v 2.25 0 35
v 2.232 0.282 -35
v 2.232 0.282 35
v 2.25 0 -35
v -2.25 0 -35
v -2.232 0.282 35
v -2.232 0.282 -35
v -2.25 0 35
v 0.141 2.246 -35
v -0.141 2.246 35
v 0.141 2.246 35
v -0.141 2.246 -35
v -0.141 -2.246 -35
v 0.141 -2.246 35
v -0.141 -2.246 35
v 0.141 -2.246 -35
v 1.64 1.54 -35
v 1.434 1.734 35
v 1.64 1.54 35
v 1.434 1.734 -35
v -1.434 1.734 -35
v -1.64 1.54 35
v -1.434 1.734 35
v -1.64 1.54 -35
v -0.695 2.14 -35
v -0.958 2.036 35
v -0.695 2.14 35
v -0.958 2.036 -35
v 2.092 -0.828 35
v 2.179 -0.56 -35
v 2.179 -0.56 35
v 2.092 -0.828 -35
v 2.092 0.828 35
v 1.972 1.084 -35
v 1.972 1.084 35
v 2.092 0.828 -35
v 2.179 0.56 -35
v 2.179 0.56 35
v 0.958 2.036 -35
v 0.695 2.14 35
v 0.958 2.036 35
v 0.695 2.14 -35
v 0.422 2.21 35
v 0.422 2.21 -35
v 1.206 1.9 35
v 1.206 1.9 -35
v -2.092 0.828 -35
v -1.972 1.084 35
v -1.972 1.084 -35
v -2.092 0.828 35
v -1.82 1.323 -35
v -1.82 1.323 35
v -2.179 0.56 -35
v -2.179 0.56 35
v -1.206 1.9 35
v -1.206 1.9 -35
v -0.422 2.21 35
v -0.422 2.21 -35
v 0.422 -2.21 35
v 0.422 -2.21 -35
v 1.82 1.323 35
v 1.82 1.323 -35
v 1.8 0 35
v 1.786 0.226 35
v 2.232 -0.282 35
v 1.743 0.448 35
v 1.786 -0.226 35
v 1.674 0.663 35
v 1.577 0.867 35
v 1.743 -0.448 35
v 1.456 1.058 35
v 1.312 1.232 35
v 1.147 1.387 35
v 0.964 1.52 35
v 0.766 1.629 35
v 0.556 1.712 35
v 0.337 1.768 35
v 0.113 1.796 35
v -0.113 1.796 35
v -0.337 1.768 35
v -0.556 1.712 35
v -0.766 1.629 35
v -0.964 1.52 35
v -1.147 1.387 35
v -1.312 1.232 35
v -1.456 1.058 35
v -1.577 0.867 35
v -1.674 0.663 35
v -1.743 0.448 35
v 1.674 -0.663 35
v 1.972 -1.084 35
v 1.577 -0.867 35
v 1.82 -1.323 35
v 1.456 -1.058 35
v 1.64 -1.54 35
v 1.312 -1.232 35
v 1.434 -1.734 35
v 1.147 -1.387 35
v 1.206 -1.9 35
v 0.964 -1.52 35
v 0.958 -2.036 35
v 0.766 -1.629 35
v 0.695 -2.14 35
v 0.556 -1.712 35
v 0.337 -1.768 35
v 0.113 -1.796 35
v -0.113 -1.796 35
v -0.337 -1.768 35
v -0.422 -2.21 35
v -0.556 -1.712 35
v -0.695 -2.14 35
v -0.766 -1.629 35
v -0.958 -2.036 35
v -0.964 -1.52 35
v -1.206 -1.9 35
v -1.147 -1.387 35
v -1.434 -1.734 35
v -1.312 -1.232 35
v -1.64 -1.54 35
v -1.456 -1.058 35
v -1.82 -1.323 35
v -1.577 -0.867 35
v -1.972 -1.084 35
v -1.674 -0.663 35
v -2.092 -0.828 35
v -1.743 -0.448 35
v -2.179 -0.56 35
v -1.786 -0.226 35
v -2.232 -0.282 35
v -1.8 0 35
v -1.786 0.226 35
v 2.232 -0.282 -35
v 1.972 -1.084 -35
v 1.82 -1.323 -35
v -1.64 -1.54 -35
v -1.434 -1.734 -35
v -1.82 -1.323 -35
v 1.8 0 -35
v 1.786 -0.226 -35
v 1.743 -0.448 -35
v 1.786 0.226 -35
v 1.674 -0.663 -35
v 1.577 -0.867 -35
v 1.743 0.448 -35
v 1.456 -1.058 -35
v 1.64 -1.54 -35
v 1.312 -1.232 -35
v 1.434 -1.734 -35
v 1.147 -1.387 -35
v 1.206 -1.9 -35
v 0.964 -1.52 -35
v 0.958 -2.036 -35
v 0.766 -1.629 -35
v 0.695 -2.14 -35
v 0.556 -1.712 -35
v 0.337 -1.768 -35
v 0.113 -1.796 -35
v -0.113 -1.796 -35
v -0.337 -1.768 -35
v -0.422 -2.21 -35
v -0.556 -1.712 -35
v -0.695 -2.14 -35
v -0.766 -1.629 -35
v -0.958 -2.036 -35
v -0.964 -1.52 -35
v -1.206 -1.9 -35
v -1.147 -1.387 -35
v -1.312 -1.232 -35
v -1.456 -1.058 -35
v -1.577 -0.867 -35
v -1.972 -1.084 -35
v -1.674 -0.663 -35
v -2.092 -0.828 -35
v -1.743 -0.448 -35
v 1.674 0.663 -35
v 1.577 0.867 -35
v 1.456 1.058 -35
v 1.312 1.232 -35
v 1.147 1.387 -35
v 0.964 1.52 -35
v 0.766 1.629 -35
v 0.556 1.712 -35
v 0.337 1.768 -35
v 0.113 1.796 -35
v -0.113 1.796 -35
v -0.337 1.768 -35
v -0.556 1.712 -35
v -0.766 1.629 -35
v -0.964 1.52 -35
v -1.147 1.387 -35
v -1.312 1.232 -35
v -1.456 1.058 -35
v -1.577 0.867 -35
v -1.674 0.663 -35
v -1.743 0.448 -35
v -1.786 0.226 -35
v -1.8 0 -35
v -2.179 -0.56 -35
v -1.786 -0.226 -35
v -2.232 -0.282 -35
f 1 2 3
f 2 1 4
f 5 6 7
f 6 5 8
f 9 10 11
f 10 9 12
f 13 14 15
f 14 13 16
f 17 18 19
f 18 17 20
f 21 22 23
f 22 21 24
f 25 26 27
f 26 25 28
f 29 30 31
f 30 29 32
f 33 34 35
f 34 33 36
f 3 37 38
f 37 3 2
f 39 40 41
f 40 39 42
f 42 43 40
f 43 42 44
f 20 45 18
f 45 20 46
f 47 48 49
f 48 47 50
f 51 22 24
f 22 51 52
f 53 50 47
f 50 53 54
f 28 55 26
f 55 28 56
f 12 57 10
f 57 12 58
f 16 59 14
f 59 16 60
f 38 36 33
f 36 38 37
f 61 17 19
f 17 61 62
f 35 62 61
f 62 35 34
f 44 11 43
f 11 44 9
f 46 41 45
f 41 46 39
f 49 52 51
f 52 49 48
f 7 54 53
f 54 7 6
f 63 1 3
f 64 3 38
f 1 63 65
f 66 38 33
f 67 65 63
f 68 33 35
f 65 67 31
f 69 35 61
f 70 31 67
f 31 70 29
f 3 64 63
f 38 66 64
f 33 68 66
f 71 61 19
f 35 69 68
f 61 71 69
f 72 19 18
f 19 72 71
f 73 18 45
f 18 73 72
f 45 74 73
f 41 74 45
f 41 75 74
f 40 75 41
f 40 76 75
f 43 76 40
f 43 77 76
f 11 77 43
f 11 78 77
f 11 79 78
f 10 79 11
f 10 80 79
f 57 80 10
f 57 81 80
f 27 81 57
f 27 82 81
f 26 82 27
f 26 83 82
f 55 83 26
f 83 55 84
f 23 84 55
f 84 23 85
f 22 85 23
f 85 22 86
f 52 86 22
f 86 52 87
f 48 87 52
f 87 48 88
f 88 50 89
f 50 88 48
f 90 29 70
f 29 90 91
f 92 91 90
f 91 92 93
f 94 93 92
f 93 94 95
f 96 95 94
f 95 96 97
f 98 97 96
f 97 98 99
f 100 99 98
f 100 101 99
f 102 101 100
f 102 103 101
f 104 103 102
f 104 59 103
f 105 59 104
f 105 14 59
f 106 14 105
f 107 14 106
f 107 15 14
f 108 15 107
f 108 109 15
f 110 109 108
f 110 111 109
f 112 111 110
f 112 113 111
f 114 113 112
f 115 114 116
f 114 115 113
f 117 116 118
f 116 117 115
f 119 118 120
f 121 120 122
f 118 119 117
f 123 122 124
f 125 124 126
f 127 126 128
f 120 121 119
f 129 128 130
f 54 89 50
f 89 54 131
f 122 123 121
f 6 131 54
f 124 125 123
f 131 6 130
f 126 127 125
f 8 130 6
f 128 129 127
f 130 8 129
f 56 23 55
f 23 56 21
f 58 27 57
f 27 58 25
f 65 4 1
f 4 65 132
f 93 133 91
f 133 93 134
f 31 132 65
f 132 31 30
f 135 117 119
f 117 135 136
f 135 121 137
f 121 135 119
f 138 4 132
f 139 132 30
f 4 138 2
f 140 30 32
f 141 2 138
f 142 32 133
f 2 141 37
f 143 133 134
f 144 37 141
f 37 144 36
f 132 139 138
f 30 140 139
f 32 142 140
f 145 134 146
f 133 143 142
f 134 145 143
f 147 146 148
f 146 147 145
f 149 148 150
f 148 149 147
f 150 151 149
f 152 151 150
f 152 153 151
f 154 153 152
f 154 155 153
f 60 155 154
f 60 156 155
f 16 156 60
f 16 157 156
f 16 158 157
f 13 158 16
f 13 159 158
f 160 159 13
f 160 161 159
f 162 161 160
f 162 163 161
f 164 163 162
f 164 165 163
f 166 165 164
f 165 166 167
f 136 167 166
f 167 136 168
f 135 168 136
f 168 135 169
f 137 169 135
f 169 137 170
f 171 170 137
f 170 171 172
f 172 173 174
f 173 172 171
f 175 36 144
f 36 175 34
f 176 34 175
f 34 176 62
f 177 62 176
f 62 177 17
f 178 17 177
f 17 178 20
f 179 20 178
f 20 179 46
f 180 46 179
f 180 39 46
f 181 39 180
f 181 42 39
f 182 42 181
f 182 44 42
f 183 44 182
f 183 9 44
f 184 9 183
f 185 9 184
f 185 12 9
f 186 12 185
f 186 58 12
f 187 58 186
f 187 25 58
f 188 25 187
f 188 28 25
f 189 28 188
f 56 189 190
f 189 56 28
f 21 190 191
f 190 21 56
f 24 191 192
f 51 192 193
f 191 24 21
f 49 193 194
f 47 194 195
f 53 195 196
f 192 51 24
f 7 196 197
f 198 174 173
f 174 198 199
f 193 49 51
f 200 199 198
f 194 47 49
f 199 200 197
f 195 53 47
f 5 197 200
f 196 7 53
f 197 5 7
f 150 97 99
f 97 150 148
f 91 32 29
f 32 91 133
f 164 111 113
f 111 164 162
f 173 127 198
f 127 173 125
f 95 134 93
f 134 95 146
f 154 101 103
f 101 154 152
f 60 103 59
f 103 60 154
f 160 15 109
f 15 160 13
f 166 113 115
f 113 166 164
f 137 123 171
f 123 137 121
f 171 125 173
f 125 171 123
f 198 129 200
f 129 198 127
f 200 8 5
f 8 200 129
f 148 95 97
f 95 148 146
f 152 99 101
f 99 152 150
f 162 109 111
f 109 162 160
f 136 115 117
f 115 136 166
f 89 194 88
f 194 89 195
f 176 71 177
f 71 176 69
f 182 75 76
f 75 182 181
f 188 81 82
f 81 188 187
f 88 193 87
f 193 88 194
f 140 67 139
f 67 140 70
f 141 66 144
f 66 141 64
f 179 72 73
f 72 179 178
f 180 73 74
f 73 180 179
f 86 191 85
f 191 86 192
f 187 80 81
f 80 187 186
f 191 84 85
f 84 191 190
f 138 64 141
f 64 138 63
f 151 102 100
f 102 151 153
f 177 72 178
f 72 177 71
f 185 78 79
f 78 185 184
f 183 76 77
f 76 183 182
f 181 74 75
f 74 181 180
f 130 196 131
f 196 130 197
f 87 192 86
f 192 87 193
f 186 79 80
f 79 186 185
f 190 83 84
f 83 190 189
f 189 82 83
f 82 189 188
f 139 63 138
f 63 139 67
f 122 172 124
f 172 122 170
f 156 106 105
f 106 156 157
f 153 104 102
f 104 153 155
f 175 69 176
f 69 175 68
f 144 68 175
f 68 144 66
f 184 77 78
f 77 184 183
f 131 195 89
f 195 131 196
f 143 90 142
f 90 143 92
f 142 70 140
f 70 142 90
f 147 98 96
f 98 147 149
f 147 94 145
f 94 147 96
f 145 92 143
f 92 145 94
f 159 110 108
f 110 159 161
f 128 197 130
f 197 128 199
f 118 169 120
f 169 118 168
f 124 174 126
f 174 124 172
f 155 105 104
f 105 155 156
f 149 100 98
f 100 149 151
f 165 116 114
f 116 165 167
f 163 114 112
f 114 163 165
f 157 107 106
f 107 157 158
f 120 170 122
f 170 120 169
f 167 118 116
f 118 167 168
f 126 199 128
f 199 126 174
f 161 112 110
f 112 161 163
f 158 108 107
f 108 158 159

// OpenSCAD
$fn = 50;


difference() {
	union() {
		translate(v = [0, 0, -35.0000000000]) {
			cylinder(h = 70, r = 2.2500000000);
		}
	}
	union() {
		translate(v = [0, 0, -100.0000000000]) {
			cylinder(h = 200, r = 1.8000000000);
		}
	}
}
